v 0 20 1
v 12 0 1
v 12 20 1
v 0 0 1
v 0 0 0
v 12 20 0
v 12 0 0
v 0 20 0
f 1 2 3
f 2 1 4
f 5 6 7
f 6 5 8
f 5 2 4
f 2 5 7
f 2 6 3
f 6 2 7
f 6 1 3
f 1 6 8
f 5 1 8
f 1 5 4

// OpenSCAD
/* Warning, this is a very basic generator with a lot of approximation 
input data : [TSOP, W9X, 12x20mm, 48, , B, C04-00177B]
generated by com.zoubworld.electronics.cad.model3d.Basic
Date : Sun Feb 15 10:50:48 CET 2026
*/

//body
color("black")
translate([0,0,0])
cube([12.0,20.0,1.0], center=false);
